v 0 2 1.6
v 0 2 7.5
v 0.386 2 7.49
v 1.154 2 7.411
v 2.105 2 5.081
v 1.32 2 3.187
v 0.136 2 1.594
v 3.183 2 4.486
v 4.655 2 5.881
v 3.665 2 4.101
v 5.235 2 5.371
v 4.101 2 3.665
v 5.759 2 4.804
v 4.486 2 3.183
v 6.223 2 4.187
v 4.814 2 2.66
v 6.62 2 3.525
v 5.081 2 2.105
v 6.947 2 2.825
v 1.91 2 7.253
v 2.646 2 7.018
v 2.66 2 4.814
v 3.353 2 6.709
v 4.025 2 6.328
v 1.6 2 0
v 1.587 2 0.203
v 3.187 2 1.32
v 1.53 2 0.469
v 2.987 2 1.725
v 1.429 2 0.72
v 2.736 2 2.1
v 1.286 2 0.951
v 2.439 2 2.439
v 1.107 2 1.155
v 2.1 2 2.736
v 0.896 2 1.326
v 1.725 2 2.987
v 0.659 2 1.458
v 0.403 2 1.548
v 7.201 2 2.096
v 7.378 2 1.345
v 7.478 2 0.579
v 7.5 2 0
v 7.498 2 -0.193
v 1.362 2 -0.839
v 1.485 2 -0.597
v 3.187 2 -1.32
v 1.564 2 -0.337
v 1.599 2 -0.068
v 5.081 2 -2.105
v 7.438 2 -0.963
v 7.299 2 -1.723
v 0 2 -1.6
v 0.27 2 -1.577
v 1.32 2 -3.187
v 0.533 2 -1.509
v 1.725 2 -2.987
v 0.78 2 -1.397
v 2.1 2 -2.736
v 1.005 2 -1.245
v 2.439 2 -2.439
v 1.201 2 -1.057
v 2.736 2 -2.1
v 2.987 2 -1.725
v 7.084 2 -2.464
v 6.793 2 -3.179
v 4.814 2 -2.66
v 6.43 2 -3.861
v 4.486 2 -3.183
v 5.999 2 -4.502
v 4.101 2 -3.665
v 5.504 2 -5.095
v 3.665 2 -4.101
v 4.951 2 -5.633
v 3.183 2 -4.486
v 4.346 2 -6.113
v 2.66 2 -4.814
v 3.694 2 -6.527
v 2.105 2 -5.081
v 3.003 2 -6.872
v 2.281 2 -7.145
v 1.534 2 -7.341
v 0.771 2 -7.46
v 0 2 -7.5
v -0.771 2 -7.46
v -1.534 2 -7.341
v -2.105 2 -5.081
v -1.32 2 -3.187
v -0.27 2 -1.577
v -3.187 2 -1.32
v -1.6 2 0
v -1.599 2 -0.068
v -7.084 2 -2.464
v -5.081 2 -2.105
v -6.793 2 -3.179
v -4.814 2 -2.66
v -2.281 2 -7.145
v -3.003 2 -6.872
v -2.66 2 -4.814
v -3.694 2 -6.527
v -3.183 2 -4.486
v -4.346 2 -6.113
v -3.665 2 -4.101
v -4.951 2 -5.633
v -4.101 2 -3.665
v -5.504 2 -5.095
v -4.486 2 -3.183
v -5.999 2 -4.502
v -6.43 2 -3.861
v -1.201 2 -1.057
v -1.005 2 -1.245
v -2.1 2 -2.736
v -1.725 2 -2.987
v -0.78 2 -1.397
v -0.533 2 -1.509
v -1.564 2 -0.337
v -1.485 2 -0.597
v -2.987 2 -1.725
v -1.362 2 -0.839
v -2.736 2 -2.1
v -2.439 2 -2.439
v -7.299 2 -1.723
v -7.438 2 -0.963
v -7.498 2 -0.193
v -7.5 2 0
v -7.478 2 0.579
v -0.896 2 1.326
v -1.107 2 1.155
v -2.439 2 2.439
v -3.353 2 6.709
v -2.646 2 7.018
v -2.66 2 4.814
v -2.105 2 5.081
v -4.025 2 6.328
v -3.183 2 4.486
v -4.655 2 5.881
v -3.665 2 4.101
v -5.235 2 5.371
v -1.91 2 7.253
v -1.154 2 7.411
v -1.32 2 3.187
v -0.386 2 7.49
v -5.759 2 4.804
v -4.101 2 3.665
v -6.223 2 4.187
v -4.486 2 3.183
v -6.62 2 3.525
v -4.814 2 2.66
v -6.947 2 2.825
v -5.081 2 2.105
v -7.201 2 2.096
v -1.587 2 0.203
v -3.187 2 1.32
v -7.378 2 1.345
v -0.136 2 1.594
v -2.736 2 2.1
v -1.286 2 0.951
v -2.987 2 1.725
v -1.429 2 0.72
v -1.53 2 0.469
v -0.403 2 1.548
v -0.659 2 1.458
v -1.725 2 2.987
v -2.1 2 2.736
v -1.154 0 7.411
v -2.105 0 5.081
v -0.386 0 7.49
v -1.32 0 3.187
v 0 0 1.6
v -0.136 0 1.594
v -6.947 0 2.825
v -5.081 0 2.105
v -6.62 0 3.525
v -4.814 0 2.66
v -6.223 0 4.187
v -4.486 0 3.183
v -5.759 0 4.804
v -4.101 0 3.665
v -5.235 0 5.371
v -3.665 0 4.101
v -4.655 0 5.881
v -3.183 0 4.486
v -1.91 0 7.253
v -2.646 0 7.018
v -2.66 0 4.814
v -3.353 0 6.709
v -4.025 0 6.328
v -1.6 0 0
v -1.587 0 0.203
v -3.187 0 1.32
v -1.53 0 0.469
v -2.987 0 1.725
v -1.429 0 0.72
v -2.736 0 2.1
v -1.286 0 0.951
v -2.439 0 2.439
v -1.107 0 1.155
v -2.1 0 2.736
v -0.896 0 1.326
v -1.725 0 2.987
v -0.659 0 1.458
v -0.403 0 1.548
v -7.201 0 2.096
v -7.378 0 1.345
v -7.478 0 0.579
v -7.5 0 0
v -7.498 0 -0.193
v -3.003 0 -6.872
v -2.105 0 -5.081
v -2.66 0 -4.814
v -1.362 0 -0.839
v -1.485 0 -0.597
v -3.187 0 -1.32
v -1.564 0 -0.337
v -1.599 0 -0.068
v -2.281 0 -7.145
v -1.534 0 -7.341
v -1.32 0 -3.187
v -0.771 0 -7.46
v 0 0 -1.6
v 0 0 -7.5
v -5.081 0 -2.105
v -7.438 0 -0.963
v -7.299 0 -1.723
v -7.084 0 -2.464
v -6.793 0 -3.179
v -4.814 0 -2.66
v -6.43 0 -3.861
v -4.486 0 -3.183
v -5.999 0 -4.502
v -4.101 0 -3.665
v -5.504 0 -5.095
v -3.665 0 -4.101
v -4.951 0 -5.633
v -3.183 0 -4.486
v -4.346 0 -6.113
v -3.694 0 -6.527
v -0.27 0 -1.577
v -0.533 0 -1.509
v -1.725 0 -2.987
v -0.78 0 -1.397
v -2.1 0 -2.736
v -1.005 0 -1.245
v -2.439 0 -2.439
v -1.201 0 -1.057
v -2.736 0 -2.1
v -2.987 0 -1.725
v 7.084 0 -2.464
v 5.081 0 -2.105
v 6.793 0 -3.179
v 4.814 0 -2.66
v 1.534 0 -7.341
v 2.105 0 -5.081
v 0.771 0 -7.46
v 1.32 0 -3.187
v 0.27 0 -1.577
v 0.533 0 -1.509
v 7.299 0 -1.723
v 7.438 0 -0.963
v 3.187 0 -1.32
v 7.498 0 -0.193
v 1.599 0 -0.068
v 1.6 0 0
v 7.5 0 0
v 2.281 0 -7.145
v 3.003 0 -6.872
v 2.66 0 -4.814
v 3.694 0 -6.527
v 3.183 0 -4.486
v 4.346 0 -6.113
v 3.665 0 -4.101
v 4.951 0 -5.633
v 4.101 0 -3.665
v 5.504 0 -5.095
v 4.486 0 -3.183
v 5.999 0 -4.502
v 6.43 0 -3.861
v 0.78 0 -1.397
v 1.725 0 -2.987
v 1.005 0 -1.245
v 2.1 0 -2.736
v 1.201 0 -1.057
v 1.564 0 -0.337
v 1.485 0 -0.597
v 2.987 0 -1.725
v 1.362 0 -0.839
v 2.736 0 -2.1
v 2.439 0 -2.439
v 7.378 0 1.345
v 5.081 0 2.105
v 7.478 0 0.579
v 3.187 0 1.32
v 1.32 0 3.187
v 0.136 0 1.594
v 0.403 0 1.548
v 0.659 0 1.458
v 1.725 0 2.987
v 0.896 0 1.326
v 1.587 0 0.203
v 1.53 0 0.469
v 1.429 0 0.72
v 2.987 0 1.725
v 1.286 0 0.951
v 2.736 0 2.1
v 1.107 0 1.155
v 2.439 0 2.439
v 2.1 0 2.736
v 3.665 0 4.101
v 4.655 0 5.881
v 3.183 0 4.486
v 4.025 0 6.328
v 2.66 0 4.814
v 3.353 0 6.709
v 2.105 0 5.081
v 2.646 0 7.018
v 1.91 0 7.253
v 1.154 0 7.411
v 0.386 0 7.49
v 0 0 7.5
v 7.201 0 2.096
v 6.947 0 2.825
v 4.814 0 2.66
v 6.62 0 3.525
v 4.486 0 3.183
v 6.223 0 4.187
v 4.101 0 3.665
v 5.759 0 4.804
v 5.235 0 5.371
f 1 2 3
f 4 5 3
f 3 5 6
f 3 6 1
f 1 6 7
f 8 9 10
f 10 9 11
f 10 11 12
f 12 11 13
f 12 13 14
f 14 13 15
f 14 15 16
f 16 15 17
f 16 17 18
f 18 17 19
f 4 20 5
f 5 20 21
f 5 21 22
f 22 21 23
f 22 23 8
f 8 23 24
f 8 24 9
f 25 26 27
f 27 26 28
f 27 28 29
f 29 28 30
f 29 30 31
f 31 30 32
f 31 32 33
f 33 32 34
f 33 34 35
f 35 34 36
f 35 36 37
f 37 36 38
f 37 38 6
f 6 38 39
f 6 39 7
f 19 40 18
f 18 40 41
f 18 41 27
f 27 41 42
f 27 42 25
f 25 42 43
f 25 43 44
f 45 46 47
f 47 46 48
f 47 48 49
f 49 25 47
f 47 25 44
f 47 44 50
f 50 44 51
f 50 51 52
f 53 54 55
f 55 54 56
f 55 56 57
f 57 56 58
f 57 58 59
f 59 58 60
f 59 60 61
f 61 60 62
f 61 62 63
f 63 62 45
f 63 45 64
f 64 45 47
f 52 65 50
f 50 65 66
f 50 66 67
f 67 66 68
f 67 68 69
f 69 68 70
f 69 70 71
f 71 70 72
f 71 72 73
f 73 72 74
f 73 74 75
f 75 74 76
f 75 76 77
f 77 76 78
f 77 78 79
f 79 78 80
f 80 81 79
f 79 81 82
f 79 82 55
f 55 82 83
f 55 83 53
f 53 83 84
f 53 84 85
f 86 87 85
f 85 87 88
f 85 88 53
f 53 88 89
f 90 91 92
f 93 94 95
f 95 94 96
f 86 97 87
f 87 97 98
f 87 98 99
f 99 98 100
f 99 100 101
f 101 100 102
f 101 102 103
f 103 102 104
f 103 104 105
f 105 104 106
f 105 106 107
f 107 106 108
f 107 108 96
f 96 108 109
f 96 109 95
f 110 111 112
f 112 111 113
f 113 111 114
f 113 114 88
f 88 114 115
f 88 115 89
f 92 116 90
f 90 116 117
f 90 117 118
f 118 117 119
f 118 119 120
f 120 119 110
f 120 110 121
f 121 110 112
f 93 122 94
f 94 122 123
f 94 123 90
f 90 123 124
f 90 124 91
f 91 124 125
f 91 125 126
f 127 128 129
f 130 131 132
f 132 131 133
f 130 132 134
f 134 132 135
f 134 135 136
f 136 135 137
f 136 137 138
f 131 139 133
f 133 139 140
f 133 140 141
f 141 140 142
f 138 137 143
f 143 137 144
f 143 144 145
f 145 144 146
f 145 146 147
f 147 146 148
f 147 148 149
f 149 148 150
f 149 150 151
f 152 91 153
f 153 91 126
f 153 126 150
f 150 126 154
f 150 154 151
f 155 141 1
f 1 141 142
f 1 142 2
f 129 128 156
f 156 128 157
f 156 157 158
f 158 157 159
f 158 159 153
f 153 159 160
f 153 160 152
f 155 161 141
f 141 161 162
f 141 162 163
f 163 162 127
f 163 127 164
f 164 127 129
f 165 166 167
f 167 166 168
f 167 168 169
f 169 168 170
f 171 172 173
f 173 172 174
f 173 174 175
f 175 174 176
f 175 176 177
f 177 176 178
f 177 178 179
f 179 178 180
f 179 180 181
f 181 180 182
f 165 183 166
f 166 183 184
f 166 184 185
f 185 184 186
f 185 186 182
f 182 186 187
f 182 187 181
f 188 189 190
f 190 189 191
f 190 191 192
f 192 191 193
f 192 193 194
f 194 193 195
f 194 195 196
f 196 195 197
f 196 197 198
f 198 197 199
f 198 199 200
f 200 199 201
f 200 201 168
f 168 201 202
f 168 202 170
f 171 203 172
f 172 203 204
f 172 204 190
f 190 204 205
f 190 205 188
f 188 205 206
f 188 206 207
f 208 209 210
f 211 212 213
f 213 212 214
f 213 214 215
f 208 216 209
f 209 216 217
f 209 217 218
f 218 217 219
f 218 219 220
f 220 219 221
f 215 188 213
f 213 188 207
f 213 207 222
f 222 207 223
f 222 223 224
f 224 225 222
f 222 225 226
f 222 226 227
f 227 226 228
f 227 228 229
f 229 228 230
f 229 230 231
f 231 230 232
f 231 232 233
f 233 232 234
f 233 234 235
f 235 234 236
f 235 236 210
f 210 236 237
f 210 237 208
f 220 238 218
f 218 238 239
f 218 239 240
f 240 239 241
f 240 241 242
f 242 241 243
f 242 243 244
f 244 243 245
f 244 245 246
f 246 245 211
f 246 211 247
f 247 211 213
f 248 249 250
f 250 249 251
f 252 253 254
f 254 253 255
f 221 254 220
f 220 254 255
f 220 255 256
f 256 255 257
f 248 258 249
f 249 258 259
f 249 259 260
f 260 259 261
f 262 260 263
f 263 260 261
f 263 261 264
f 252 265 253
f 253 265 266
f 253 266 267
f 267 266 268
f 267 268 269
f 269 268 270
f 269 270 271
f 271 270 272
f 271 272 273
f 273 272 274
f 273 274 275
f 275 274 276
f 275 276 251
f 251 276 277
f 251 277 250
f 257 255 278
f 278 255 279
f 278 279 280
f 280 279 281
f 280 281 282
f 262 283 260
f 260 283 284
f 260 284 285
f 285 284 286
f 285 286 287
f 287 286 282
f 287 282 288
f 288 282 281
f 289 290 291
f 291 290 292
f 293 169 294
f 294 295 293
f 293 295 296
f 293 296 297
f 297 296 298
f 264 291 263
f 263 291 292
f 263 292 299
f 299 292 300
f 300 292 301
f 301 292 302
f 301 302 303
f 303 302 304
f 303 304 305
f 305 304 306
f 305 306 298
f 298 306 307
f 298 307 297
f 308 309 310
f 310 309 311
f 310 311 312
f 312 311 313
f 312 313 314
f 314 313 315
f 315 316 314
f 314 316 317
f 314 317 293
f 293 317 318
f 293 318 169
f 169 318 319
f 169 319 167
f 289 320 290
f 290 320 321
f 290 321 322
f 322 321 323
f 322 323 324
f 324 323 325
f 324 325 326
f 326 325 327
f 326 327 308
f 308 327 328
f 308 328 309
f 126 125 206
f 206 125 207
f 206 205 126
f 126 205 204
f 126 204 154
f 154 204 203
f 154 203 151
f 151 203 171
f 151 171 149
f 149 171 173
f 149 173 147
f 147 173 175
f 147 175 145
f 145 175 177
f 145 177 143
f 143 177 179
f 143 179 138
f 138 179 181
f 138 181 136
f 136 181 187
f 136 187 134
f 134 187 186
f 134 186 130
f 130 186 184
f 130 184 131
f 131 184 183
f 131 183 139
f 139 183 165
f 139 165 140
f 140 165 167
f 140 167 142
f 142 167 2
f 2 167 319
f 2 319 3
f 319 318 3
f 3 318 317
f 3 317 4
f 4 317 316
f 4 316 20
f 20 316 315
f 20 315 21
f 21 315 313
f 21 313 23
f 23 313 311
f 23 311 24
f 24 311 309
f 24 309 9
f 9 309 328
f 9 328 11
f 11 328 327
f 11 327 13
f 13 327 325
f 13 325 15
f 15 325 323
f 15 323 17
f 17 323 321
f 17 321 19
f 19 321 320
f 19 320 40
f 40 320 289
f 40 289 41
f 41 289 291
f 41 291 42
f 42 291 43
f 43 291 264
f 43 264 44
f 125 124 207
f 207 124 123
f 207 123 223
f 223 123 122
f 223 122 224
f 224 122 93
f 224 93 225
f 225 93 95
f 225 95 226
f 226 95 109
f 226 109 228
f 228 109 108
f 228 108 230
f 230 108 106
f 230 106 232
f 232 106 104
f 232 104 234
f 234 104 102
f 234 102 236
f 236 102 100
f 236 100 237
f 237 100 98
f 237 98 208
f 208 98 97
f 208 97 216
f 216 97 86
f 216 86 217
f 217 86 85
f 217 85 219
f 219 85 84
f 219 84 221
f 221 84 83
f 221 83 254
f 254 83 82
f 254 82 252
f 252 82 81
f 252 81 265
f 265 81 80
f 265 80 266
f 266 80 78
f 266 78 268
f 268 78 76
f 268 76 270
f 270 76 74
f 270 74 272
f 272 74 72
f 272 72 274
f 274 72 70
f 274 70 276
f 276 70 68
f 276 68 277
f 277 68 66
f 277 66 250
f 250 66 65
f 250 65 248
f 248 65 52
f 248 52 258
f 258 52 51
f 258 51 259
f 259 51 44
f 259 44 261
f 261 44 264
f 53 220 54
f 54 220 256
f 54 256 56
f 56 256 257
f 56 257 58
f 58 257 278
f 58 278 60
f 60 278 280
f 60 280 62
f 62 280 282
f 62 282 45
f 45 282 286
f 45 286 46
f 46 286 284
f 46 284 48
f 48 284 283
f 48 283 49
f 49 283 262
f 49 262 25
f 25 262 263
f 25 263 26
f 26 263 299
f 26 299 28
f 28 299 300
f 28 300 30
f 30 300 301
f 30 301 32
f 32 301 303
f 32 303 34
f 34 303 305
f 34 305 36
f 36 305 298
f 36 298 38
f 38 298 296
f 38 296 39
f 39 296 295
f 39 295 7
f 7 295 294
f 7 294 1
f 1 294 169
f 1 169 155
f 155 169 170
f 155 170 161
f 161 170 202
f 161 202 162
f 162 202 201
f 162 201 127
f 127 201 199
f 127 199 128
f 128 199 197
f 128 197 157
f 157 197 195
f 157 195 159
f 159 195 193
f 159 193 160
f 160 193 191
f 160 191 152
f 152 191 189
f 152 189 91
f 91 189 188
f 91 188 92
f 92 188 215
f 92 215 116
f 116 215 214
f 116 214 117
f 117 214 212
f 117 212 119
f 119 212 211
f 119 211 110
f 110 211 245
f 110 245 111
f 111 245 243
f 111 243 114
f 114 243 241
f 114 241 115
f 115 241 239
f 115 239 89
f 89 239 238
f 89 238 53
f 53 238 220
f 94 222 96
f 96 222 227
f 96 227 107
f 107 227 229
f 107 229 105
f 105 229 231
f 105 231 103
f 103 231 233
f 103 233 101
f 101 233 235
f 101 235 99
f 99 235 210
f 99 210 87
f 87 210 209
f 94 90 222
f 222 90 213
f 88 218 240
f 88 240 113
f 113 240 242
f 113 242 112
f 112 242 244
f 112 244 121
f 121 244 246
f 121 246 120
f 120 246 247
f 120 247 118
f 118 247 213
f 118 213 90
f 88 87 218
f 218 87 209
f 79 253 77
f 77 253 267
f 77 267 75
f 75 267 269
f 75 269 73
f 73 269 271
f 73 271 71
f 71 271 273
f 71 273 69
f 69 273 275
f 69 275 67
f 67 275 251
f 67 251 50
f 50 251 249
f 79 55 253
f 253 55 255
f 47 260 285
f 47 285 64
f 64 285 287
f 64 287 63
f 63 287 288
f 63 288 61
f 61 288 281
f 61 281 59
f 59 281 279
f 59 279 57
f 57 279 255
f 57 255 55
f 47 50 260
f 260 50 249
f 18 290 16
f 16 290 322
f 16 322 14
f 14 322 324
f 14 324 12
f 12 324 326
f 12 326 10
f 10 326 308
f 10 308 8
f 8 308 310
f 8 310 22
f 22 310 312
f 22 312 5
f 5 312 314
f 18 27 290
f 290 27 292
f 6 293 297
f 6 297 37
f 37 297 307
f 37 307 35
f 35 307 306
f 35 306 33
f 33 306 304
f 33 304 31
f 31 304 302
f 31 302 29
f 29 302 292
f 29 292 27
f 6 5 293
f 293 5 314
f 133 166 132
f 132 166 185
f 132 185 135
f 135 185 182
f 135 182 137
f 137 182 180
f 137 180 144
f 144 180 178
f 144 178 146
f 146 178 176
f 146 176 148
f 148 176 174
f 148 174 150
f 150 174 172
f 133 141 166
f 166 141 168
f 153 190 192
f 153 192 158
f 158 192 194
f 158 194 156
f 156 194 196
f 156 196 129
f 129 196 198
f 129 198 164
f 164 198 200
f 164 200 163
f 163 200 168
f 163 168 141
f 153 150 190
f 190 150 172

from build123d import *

# Parameters (mm, degrees)
SKETCH1_R           = 7.5
SKETCH1_R_2         = 1.6
BOSS_EXTRUDE1_DEPTH = 2


with BuildPart() as part:
    # Sketch1 → Boss-Extrude1 (new body)
    with BuildSketch(Plane(origin=(0, 0, 0), x_dir=(1, 0, 0), z_dir=(0, 1, 0))):
        with Locations(Location((0, 0, 0), (0, 0, 270))):
            Circle(SKETCH1_R)
        with Locations(Location((0, 0, 0), (0, 0, 270))):
            Circle(SKETCH1_R_2, mode=Mode.SUBTRACT)
        with BuildLine():
            Line((-1.319908308, 3.186540538), (-2.104758878, 5.081337429))
            ThreePointArc((-2.104758878, 5.081337429), (-3.889087297, 3.889087297), (-5.081337429, 2.104758878))
            Line((-5.081337429, 2.104758878), (-3.186540538, 1.319908308))
            ThreePointArc((-3.186540538, 1.319908308), (-2.438872541, 2.438872541), (-1.319908308, 3.186540538))
        make_face(mode=Mode.SUBTRACT)
        with BuildLine():
            Line((1.319908308, 3.186540538), (2.104758878, 5.081337429))
            ThreePointArc((2.104758878, 5.081337429), (3.889087297, 3.889087297), (5.081337429, 2.104758878))
            Line((5.081337429, 2.104758878), (3.186540538, 1.319908308))
            ThreePointArc((3.186540538, 1.319908308), (2.438872541, 2.438872541), (1.319908308, 3.186540538))
        make_face(mode=Mode.SUBTRACT)
        with BuildLine():
            Line((3.186540538, -1.319908308), (5.081337429, -2.104758878))
            ThreePointArc((5.081337429, -2.104758878), (3.889087297, -3.889087297), (2.104758878, -5.081337429))
            Line((2.104758878, -5.081337429), (1.319908308, -3.186540538))
            ThreePointArc((1.319908308, -3.186540538), (2.438872541, -2.438872541), (3.186540538, -1.319908308))
        make_face(mode=Mode.SUBTRACT)
        with BuildLine():
            Line((-1.319908308, -3.186540538), (-2.104758878, -5.081337429))
            ThreePointArc((-2.104758878, -5.081337429), (-3.889087297, -3.889087297), (-5.081337429, -2.104758878))
            Line((-5.081337429, -2.104758878), (-3.186540538, -1.319908308))
            ThreePointArc((-3.186540538, -1.319908308), (-2.438872541, -2.438872541), (-1.319908308, -3.186540538))
        make_face(mode=Mode.SUBTRACT)
    extrude(amount=BOSS_EXTRUDE1_DEPTH)


solid = part.part
